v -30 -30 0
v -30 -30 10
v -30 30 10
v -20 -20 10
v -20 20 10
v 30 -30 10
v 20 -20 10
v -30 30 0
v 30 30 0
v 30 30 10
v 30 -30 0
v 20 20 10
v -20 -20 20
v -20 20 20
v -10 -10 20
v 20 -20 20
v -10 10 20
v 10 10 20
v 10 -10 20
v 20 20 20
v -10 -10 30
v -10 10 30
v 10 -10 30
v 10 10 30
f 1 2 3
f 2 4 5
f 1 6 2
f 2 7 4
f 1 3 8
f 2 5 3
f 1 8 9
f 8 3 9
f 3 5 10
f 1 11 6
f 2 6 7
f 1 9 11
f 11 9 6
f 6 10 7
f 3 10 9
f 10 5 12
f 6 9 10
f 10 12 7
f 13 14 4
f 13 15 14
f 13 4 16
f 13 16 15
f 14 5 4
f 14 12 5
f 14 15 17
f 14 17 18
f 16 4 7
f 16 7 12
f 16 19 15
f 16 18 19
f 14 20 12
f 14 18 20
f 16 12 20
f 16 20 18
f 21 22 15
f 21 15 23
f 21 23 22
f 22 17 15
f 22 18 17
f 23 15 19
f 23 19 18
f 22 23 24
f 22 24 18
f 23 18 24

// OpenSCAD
// 3段の階段状ピラミッド

// 1段目（底面：60mm x 60mm, 高さ：10mm）
translate([-30, -30, 0])
    cube([60, 60, 10]);

// 2段目（中央：40mm x 40mm, 高さ：10mm）
translate([-20, -20, 10])
    cube([40, 40, 10]);

// 3段目（上面：20mm x 20mm, 高さ：10mm）
translate([-10, -10, 20])
    cube([20, 20, 10]);
